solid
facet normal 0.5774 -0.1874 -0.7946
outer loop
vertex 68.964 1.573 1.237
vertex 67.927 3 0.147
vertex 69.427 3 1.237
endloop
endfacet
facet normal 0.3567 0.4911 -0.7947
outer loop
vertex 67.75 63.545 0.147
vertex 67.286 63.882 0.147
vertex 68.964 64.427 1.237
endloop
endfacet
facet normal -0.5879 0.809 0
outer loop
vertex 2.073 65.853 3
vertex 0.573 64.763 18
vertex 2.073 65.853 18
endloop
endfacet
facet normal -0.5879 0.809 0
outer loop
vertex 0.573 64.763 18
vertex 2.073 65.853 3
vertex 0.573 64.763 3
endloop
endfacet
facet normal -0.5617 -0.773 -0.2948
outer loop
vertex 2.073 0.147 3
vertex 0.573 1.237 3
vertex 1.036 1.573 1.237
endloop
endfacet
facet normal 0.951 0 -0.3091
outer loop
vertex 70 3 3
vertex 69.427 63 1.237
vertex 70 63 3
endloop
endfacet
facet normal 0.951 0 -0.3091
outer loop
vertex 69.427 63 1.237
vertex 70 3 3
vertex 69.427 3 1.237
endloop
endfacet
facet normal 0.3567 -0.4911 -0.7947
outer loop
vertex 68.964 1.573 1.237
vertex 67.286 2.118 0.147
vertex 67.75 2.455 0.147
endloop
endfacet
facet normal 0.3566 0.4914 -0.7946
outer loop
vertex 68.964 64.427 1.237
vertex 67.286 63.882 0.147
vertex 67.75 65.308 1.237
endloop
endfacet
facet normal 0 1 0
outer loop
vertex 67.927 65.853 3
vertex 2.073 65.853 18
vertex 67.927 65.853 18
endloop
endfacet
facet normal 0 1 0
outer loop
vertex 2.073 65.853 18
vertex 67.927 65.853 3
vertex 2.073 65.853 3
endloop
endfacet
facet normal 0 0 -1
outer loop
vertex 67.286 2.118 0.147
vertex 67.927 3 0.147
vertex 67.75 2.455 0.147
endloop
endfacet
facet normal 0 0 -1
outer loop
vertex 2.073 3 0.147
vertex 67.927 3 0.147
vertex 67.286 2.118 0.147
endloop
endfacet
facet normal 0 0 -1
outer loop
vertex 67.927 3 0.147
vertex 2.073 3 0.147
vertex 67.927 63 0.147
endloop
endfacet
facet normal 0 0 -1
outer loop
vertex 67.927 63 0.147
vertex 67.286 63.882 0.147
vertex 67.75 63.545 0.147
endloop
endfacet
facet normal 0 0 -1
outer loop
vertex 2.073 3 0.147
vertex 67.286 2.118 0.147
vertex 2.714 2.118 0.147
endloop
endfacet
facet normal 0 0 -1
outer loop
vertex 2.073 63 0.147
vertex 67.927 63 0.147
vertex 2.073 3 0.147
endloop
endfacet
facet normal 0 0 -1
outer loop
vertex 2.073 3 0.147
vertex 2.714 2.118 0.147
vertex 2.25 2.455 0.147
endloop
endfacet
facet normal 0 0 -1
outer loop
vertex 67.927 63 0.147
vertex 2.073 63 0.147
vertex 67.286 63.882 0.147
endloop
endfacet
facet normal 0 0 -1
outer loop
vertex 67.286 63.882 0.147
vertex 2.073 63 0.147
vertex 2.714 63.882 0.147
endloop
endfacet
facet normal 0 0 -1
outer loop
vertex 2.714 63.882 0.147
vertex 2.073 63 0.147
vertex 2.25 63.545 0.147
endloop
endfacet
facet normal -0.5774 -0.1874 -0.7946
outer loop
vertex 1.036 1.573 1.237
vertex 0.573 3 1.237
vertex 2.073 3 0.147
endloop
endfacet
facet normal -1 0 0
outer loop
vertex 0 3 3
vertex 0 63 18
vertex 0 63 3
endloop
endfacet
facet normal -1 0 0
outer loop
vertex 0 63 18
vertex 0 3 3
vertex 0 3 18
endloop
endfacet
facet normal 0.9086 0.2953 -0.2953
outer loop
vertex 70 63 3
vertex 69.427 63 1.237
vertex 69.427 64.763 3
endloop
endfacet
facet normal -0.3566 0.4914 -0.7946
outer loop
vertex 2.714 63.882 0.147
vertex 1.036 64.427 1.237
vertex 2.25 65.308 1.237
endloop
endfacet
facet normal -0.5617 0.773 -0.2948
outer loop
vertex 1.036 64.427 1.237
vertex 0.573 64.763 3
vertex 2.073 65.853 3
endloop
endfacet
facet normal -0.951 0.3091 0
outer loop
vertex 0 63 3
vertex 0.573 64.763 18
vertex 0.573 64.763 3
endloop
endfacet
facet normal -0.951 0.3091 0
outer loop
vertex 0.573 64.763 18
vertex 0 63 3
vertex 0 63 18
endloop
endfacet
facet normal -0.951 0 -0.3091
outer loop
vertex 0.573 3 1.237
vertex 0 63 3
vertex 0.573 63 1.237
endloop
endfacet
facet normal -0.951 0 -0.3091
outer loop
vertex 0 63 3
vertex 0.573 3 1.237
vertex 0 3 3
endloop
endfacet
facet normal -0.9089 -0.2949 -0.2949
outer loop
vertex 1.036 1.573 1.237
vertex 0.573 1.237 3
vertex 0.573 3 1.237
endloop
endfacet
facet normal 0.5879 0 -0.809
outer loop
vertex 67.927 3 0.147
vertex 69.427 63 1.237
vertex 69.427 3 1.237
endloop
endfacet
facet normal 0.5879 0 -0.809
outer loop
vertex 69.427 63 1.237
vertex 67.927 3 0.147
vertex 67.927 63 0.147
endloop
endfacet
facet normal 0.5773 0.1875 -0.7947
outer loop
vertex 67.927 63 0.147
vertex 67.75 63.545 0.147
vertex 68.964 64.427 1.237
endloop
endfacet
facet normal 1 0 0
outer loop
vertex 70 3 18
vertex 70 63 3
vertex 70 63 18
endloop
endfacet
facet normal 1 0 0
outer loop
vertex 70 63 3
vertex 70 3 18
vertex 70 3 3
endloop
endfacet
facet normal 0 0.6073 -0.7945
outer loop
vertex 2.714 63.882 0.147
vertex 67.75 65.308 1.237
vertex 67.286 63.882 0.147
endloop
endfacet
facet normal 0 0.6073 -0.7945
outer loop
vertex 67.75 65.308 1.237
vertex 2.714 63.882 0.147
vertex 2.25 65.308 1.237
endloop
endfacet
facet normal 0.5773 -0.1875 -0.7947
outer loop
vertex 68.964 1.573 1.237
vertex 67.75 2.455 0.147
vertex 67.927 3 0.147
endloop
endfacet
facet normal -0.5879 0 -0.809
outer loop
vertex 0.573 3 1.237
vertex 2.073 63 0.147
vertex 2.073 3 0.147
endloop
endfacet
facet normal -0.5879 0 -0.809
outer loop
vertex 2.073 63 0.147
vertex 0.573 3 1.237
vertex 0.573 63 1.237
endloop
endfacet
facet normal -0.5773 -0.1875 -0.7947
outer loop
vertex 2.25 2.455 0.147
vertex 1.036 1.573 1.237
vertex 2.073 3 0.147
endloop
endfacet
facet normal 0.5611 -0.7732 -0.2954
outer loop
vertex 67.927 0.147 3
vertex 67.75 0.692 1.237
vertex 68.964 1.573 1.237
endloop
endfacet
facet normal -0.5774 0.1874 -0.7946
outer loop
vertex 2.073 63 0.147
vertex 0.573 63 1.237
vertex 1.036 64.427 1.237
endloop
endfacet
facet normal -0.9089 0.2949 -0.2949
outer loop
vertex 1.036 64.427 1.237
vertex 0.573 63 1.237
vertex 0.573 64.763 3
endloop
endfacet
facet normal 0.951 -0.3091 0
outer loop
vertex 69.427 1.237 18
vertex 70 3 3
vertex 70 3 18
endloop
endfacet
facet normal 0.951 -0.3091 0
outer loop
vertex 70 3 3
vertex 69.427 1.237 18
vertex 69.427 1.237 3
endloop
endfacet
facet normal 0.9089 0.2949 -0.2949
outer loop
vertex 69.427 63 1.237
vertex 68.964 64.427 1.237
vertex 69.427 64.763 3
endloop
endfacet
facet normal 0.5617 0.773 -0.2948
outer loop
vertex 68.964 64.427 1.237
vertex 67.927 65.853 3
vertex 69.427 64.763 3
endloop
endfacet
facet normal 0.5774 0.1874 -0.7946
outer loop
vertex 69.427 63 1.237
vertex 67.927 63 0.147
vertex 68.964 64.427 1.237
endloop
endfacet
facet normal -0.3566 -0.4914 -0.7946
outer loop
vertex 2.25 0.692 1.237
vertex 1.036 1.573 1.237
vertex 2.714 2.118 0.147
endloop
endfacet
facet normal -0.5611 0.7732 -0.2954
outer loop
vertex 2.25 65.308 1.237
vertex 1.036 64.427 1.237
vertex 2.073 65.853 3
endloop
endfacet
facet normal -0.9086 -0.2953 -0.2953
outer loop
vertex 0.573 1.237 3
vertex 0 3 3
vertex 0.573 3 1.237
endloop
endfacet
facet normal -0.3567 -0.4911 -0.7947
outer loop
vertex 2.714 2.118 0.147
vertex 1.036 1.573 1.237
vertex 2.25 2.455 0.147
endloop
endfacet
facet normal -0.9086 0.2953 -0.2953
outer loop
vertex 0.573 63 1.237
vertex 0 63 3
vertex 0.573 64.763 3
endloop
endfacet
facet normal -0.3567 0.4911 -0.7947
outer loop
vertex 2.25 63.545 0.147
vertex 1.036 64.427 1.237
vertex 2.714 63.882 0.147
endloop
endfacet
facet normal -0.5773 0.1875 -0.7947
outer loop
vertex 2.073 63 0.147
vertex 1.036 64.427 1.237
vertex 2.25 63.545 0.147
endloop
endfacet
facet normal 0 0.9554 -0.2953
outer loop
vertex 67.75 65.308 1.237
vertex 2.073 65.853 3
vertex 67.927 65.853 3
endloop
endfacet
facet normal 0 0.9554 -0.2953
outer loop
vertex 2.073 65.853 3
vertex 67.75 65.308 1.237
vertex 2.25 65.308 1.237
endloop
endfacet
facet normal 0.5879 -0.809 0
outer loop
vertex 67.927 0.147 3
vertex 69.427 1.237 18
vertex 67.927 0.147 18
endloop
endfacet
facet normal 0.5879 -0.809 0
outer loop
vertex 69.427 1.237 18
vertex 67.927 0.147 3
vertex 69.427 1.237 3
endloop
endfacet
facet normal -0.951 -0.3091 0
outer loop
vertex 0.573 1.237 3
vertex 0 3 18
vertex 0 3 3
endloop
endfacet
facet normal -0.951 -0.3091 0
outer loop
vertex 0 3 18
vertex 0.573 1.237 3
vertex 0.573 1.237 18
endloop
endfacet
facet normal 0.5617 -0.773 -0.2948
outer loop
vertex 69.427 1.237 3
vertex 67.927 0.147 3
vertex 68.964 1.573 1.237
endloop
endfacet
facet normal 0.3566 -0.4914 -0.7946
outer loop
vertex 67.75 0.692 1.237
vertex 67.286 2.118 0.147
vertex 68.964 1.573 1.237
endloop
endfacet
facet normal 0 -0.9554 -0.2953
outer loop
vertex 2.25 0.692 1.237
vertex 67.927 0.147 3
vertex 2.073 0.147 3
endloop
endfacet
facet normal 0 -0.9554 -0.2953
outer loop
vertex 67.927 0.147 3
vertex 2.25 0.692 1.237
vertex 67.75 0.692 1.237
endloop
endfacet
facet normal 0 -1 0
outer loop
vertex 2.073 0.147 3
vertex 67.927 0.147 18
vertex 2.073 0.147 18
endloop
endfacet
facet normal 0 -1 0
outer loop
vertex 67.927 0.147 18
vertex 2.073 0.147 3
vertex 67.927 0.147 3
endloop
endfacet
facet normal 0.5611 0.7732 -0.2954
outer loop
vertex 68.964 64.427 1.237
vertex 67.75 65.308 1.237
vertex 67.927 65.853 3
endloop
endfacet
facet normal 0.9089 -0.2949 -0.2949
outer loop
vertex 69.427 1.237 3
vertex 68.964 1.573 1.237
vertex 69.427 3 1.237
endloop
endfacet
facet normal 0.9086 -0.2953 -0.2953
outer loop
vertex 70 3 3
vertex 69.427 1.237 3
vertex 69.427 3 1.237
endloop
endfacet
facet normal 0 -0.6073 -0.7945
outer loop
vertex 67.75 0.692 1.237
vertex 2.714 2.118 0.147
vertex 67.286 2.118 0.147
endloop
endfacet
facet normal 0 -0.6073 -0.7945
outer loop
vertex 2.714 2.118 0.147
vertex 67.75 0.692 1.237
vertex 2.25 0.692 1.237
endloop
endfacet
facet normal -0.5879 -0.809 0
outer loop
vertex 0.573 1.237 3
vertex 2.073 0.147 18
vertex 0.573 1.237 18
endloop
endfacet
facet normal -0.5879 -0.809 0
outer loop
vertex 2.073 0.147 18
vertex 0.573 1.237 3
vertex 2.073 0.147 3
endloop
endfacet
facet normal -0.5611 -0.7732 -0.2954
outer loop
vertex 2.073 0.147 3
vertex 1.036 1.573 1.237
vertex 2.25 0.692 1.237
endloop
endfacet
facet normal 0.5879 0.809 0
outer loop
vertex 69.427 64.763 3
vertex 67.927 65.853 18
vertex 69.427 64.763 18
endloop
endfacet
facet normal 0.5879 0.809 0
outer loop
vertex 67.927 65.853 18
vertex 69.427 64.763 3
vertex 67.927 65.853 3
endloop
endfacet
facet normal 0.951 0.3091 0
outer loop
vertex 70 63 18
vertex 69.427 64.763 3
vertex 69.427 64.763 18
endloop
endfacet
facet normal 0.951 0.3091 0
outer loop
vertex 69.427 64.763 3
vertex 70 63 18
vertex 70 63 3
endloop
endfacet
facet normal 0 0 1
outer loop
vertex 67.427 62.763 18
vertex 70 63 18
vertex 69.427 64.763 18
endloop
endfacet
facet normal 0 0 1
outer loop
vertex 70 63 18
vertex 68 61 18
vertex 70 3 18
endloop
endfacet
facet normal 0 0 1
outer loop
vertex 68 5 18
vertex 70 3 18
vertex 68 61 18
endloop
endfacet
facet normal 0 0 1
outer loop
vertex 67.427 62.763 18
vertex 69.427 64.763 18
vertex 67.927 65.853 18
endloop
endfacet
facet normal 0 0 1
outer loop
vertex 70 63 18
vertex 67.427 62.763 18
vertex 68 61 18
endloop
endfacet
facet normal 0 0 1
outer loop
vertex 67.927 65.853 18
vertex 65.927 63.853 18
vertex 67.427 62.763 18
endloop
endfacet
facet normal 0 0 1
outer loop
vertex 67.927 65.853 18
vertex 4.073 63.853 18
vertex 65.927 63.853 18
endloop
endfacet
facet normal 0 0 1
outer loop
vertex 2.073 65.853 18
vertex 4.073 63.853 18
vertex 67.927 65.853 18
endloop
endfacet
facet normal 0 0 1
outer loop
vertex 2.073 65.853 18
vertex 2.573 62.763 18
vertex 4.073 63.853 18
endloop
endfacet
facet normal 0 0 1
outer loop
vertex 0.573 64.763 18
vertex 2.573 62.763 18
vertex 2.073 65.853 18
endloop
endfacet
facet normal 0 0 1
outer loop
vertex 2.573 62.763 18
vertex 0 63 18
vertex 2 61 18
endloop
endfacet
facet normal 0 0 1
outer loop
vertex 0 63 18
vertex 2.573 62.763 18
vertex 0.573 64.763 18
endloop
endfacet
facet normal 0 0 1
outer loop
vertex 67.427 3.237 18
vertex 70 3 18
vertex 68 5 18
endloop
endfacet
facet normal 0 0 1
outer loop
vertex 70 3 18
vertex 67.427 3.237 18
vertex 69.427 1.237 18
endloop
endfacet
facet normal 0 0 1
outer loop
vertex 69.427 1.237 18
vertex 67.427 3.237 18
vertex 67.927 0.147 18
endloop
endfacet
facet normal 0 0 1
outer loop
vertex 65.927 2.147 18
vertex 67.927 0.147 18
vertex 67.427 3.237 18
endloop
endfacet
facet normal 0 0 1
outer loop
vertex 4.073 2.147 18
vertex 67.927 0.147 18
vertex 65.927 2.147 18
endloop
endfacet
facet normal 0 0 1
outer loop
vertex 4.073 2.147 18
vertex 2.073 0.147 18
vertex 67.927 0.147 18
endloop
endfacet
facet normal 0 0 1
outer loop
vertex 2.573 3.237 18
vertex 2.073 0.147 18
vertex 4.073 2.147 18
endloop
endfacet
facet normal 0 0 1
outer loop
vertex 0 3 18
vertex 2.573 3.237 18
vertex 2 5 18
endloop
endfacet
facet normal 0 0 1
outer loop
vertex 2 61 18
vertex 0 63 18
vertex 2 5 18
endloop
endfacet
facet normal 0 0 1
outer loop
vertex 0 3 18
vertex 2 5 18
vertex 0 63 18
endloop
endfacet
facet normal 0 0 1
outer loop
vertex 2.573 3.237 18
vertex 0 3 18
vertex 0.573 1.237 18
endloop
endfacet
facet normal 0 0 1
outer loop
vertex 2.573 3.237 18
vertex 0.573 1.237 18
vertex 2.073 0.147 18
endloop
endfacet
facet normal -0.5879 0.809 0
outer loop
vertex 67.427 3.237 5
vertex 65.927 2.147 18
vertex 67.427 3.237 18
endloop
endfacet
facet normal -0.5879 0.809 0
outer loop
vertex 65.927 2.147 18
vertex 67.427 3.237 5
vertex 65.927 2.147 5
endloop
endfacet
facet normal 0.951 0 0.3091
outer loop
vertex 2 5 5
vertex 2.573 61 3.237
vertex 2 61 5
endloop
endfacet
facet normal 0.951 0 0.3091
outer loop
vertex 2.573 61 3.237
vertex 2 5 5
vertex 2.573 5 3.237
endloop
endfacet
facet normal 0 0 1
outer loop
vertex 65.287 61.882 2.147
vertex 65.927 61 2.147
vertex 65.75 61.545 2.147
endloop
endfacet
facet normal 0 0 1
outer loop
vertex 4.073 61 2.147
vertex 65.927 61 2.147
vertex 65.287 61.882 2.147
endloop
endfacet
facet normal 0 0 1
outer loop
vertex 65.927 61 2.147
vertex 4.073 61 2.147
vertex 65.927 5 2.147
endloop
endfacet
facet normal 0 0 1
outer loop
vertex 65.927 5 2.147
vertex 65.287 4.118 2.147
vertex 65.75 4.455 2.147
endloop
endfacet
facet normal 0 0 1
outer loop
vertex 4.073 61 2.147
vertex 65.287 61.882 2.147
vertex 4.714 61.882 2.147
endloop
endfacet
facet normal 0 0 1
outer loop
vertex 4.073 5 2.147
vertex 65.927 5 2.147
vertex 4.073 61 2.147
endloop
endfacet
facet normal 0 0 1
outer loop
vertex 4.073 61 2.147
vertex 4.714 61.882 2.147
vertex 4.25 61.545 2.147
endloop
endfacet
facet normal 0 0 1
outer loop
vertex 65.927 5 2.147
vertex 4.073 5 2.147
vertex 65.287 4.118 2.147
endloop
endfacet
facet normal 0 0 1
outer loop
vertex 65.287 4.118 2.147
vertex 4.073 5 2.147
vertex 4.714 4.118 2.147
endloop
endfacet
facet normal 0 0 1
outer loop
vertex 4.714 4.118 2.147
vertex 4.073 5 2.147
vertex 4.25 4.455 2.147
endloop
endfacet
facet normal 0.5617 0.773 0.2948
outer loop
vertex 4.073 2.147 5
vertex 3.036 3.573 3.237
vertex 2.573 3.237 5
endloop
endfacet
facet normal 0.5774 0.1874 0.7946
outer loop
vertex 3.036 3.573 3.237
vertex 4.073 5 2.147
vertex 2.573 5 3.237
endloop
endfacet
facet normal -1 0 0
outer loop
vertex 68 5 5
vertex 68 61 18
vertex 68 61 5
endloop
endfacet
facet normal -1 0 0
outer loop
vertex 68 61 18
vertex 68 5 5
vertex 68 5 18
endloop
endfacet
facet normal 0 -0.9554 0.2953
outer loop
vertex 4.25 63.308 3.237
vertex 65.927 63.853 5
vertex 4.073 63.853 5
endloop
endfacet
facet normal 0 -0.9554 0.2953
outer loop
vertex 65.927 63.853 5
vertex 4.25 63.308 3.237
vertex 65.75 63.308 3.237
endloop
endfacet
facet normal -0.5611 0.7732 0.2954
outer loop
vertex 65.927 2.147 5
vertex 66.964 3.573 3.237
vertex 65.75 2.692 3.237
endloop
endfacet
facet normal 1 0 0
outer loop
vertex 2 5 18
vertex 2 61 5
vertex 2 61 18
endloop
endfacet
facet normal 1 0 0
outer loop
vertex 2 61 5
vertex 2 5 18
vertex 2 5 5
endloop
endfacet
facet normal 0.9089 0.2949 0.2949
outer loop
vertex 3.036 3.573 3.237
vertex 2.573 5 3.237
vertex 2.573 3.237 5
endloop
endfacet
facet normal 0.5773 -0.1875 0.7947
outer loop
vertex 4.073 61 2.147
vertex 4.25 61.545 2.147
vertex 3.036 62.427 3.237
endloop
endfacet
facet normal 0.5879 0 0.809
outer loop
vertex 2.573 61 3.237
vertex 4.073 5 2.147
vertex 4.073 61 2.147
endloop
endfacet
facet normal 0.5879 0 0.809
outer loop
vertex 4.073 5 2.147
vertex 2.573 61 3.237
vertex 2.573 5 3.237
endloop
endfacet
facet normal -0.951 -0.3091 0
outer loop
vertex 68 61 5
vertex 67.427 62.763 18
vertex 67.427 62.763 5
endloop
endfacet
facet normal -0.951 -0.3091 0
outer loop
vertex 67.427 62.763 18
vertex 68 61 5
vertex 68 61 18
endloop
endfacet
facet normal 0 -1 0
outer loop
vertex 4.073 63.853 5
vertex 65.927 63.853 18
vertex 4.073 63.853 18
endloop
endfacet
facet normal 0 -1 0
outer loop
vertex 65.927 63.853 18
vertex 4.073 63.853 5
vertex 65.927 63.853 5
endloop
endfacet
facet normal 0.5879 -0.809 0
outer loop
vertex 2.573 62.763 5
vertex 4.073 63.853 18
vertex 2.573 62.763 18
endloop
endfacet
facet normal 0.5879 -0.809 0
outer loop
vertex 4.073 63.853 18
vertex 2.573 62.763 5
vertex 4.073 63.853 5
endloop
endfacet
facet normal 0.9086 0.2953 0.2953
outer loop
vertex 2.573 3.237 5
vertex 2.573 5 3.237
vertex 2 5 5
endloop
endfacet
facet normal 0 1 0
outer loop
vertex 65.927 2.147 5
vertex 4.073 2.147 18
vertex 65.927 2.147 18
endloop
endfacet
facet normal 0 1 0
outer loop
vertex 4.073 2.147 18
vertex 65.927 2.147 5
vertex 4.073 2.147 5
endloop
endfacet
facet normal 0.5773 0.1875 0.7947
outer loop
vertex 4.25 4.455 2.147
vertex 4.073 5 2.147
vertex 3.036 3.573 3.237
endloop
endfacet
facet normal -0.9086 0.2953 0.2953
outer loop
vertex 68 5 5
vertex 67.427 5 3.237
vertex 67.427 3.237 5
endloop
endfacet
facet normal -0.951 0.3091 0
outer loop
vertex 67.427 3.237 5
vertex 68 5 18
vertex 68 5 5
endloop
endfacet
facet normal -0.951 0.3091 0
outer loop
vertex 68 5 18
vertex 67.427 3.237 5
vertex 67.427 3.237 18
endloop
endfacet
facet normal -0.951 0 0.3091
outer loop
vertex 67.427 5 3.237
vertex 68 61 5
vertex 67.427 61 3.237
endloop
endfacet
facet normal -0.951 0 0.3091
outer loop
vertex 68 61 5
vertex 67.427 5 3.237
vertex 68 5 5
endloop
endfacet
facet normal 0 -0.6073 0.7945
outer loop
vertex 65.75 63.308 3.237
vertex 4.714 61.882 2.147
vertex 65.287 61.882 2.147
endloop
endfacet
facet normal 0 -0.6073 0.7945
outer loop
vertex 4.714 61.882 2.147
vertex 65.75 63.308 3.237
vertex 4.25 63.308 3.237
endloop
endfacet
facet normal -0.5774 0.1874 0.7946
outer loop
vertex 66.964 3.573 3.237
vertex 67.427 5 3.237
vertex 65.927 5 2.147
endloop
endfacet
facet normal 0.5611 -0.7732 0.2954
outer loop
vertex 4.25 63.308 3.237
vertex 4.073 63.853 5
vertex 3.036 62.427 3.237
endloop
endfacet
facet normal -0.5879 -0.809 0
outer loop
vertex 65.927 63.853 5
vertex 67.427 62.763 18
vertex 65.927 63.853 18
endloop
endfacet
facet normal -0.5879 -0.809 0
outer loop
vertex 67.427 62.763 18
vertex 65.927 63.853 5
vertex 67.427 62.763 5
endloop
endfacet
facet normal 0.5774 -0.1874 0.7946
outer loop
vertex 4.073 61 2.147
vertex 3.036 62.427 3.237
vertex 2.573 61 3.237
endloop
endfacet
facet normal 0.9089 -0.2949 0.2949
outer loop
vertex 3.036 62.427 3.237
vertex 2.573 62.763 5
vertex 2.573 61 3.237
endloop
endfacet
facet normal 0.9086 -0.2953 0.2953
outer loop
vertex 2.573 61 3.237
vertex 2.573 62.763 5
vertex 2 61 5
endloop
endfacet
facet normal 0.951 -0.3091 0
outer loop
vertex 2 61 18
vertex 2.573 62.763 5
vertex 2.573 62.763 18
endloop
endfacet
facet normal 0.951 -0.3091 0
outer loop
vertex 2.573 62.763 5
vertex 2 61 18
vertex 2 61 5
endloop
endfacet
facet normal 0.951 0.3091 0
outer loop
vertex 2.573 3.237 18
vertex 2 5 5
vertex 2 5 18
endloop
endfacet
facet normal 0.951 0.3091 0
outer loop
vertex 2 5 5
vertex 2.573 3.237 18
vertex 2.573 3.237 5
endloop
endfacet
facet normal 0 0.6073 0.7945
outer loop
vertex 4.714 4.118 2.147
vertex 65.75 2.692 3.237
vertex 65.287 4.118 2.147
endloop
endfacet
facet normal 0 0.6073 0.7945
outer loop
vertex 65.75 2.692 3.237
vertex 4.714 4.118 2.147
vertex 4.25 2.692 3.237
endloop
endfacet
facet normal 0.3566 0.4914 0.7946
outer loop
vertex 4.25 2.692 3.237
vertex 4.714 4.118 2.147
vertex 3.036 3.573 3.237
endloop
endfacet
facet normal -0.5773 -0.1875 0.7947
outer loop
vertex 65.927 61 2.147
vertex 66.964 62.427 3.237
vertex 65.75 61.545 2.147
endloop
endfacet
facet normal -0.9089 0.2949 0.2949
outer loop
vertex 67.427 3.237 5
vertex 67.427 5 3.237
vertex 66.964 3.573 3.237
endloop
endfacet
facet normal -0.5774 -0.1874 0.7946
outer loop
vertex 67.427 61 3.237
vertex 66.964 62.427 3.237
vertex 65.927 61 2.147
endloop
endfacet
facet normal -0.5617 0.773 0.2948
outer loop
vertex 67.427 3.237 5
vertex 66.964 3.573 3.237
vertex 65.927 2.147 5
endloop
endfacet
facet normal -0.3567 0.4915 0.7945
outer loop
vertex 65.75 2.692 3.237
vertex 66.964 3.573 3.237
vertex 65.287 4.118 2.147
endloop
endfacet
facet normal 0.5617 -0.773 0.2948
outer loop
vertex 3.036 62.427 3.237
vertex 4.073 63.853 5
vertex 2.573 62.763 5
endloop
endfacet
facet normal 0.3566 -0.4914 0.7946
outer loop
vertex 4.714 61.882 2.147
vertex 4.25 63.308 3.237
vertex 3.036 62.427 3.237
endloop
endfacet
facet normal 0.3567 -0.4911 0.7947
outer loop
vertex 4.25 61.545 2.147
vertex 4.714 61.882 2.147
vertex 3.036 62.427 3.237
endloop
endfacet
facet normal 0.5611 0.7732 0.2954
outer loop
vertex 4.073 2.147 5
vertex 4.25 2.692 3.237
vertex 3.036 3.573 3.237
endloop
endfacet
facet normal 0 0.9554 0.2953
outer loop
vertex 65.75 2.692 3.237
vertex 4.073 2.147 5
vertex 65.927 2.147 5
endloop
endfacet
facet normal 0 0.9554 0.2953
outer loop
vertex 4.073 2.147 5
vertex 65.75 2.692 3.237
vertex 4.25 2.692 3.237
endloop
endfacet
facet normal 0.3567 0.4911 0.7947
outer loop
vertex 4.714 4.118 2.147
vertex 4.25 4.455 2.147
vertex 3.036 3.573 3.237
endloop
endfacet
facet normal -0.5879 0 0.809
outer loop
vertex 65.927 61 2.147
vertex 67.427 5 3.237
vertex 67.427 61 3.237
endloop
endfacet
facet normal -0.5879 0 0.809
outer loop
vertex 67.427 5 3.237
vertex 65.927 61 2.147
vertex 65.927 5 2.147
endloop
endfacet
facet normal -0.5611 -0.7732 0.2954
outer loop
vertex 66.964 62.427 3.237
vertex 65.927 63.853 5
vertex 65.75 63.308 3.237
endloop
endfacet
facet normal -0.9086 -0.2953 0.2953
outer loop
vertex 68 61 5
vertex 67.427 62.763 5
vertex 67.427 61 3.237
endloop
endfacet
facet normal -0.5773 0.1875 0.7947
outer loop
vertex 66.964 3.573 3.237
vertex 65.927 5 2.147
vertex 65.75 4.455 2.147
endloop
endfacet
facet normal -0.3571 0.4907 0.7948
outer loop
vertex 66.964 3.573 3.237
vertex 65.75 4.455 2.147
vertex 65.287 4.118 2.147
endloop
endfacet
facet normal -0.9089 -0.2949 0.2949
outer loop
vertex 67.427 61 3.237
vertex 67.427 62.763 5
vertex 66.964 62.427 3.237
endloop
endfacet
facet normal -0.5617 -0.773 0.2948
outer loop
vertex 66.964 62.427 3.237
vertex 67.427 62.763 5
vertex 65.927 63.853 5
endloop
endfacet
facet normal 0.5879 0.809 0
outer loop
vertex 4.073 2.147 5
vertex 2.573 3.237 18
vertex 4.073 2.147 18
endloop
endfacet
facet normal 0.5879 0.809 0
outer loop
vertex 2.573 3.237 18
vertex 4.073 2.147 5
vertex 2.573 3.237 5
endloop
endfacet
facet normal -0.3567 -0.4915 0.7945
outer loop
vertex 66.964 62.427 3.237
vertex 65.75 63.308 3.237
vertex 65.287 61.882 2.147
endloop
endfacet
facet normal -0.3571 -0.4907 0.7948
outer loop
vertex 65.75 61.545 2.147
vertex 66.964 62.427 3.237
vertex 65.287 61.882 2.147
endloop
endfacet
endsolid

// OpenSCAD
echo(version=version());

// space 
// length 70
// width 66
// support height 36

// Settings
box_length = 70;
box_width = 66;
box_height = 18;
wall_thickness = 2;

rounding = 3;
bleed = 1;


// Derived attributes
r_box_length = box_length-rounding*2;
r_box_width = box_width-rounding*2;
r_box_height = box_height-rounding*2+rounding+bleed;

r_hollow_length = box_length-rounding*2-wall_thickness*2;
r_hollow_width = box_width-rounding*2-wall_thickness*2;
r_hollow_height = box_height-rounding*2+rounding+bleed;
r_hollow_offset = rounding+wall_thickness;

difference() {
  // Base tray
  minkowski() {
    translate([rounding, rounding, rounding]) {
      cube([r_box_length, r_box_width, r_box_height]);
    }
    sphere(rounding);
  }

  // Slice off top
  translate([-bleed,-bleed,box_height]) {
    cube([box_length+bleed*2, box_width+bleed*2, rounding+bleed]);
  }

  // Hollow out tray
  minkowski() {
    translate([r_hollow_offset, r_hollow_offset, r_hollow_offset]) {
      cube([r_hollow_length, r_hollow_width, r_hollow_height]);
    }
    sphere(rounding);
  }
}
